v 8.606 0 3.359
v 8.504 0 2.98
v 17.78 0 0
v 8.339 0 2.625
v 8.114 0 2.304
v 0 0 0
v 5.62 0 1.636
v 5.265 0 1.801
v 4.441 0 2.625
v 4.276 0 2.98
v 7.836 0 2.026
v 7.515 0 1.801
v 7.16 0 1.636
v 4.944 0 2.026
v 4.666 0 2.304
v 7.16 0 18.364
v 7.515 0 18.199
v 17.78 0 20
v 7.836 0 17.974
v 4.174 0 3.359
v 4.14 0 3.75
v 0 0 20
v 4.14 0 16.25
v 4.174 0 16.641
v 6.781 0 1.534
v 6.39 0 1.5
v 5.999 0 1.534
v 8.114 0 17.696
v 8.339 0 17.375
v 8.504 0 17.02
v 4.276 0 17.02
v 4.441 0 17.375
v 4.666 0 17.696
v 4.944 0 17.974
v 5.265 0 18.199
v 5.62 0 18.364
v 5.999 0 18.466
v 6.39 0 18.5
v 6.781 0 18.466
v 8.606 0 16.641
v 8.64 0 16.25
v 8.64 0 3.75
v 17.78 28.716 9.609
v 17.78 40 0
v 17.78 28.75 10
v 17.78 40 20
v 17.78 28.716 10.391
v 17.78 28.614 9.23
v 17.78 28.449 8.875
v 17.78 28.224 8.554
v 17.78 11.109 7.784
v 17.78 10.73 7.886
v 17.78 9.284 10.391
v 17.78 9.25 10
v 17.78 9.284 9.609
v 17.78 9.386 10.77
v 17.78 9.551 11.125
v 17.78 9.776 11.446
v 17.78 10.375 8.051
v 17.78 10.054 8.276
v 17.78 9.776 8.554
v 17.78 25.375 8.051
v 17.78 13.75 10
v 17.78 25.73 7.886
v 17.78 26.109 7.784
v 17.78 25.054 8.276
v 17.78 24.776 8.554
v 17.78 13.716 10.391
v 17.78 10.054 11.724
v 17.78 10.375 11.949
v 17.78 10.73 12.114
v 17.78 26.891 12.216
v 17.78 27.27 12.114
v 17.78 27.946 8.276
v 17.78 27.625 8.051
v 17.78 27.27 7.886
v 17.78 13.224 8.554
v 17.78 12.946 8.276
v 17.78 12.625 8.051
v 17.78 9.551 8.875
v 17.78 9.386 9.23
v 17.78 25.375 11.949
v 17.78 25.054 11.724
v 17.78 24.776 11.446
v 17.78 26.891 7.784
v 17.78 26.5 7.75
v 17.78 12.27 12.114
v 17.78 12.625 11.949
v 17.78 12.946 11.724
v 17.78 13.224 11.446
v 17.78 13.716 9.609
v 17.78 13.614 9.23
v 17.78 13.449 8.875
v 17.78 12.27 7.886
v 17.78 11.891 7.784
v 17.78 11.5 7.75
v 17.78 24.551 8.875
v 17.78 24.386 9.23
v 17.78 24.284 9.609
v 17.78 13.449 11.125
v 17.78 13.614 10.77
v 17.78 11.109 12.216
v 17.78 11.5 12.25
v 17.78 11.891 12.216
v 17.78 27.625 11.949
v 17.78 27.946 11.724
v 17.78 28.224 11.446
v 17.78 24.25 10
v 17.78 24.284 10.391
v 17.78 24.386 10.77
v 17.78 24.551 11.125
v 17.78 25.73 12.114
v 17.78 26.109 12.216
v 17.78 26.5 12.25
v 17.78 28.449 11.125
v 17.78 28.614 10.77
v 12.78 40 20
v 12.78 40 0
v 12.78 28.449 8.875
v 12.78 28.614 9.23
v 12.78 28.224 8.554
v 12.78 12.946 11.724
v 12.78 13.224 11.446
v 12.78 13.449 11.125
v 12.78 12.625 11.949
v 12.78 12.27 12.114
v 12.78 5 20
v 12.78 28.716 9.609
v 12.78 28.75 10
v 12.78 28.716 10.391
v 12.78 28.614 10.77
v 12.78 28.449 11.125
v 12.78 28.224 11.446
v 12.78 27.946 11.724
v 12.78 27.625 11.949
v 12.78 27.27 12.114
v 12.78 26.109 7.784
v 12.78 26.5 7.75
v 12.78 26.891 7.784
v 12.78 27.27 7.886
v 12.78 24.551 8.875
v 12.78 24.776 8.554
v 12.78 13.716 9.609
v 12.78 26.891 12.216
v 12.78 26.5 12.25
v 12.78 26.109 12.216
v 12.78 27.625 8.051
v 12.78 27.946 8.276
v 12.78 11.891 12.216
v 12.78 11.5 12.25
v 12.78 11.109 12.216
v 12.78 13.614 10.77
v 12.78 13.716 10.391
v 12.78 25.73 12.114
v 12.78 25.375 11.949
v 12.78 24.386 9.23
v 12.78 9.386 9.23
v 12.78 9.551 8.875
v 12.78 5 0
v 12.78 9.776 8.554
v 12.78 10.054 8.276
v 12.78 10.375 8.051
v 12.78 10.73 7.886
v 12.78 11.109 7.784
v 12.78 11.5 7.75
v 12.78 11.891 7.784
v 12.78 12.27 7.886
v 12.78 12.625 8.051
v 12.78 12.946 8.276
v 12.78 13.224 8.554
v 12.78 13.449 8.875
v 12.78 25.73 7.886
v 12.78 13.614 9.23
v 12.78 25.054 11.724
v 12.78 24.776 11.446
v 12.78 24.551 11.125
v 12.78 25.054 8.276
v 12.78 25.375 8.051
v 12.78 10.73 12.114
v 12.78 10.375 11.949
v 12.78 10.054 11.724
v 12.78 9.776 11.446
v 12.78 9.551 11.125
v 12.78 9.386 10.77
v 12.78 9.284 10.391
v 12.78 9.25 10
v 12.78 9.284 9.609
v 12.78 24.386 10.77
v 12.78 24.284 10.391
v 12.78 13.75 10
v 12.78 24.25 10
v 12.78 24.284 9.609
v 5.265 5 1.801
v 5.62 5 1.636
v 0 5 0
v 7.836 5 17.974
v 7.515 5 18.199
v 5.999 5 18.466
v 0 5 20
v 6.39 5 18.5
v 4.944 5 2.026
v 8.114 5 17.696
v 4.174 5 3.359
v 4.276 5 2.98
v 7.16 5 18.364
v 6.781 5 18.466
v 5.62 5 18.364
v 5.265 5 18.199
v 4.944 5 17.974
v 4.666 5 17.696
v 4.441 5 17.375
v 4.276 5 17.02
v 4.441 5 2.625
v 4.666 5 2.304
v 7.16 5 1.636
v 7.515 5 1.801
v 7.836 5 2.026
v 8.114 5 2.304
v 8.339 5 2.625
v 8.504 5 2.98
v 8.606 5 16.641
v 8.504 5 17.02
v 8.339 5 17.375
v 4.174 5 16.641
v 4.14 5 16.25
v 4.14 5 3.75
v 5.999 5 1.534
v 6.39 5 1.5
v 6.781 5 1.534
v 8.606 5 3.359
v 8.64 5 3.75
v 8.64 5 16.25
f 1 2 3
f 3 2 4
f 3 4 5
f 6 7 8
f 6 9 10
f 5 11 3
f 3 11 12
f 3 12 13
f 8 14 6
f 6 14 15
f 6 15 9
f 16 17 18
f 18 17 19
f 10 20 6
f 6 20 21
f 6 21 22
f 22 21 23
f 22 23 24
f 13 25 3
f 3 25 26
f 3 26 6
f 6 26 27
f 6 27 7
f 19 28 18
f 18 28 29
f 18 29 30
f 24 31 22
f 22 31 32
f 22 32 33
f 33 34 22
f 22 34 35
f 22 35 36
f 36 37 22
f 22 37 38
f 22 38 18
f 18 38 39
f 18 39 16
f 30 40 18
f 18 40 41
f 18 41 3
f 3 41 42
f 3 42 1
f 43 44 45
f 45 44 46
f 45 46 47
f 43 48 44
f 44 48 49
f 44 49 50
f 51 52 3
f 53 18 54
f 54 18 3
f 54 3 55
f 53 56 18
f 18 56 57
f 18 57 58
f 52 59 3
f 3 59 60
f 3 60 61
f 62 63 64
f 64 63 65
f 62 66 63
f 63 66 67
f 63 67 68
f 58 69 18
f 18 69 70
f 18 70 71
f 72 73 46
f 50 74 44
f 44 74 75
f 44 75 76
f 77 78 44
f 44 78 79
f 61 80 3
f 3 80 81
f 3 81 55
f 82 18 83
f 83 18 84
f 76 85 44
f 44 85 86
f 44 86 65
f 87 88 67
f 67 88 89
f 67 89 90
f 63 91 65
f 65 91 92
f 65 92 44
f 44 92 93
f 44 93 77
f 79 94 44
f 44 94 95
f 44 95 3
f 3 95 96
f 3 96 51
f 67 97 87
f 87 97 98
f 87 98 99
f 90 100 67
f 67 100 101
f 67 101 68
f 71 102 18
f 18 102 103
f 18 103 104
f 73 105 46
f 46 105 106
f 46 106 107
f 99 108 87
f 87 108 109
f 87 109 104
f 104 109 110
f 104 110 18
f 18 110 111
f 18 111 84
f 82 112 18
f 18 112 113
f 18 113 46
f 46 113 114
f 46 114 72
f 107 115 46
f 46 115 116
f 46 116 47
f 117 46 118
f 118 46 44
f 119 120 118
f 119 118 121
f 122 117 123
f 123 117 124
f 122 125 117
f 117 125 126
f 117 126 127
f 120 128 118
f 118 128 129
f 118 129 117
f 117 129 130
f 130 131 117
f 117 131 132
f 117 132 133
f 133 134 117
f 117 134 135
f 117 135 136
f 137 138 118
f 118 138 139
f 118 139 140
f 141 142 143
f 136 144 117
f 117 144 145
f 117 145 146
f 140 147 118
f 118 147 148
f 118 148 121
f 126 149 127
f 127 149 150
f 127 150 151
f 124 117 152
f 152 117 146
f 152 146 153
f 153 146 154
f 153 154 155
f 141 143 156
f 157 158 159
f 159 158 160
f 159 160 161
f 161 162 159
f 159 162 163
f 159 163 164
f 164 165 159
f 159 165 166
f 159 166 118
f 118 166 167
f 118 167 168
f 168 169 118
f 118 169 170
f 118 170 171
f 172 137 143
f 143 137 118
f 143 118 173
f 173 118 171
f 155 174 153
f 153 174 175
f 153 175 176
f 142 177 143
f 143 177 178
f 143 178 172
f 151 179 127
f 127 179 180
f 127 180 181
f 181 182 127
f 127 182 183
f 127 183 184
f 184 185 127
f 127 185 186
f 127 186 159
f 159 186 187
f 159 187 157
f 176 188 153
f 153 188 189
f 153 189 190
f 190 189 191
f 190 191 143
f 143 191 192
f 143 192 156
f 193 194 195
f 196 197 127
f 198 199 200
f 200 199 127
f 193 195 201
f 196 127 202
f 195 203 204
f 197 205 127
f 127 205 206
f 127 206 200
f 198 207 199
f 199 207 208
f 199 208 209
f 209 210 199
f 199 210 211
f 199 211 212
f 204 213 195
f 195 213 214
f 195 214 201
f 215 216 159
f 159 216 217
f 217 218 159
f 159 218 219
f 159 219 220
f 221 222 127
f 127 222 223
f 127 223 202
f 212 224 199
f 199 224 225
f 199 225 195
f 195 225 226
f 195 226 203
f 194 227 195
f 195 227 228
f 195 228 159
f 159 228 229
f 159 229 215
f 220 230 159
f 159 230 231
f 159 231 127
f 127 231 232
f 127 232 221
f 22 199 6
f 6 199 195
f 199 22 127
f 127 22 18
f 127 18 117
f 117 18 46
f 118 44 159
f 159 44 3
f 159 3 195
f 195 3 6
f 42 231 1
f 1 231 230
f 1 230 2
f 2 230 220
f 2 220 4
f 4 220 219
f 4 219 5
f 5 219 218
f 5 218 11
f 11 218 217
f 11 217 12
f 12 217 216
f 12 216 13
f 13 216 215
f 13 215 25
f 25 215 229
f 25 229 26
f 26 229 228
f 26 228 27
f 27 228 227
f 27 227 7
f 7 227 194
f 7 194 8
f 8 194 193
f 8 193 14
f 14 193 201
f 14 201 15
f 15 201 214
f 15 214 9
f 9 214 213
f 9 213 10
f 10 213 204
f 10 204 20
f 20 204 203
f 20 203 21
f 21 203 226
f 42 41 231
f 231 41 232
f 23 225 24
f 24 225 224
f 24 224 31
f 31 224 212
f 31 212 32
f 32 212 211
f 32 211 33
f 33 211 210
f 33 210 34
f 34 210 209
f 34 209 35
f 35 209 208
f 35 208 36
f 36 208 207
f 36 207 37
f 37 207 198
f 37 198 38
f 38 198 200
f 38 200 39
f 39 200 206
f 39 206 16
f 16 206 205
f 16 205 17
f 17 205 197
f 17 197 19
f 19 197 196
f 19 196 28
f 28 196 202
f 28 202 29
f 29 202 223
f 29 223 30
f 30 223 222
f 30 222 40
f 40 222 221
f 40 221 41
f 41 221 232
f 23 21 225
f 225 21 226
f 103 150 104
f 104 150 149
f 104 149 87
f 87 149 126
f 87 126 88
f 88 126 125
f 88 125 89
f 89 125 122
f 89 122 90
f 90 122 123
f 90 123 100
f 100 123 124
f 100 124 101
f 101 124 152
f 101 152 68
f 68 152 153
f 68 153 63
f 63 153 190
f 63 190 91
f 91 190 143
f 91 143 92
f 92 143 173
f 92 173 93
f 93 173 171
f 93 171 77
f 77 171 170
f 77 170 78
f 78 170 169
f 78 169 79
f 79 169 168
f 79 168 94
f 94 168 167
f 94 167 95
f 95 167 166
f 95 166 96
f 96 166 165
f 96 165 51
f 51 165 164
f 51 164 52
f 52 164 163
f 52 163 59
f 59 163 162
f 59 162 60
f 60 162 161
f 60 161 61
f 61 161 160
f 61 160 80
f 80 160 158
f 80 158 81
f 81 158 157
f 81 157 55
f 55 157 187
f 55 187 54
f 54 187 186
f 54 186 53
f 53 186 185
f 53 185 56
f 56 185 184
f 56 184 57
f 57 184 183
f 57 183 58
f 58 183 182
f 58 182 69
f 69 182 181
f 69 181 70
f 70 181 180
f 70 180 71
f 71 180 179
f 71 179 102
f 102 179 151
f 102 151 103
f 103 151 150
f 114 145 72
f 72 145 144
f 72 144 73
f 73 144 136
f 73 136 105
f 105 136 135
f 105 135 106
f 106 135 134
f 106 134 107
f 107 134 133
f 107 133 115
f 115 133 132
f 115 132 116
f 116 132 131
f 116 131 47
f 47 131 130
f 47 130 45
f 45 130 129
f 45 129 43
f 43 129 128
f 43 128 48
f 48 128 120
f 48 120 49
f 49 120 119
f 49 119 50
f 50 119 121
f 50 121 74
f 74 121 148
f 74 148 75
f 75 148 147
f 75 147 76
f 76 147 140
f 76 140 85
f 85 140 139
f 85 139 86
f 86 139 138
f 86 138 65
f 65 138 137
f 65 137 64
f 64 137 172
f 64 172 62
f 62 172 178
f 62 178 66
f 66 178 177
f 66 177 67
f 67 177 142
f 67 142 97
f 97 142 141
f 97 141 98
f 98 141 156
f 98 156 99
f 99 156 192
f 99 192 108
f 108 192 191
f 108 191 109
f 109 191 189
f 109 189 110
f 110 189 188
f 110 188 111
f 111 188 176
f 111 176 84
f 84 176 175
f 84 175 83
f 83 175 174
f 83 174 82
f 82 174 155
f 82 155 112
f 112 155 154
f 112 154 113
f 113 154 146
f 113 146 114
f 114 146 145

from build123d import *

# Parameters (mm, degrees)
RESSALTO_EXTRUS_O1_DEPTH = 20
CORTE_EXTRUS_O1_DEPTH    = 45.05823873
ESBO_O3_R                = 2.25
CORTE_EXTRUS_O2_DEPTH    = 47.511594253


with BuildPart() as part:
    # Esboço1 → Ressalto-extrusão1 (new body)
    with BuildSketch(Plane.XY):
        Polygon((0, 0), (0, 5), (12.78, 5), (12.78, 40), (17.78, 40), (17.78, 0), align=None)
    extrude(amount=RESSALTO_EXTRUS_O1_DEPTH)

    # Esboço2 → Corte-extrusão1 (cut, through all)
    with BuildSketch(Plane(origin=(0, 5, 0), x_dir=(1, 0, 0), z_dir=(0, 1, 0))):
        with BuildLine():
            Line((8.64, -3.75), (8.64, -16.25))
            ThreePointArc((8.64, -16.25), (6.39, -18.5), (4.14, -16.25))
            Line((4.14, -16.25), (4.14, -3.75))
            ThreePointArc((4.14, -3.75), (6.39, -1.5), (8.64, -3.75))
        make_face()
    extrude(amount=-CORTE_EXTRUS_O1_DEPTH, mode=Mode.SUBTRACT)

    # Esboço3 → Corte-extrusão2 (cut, through all)
    with BuildSketch(Plane.ZY.offset(-12.78)):
        with Locations((10, 26.5)):
            Circle(ESBO_O3_R)
        with Locations((10, 11.5)):
            Circle(ESBO_O3_R)
    extrude(amount=-CORTE_EXTRUS_O2_DEPTH, mode=Mode.SUBTRACT)


solid = part.part
